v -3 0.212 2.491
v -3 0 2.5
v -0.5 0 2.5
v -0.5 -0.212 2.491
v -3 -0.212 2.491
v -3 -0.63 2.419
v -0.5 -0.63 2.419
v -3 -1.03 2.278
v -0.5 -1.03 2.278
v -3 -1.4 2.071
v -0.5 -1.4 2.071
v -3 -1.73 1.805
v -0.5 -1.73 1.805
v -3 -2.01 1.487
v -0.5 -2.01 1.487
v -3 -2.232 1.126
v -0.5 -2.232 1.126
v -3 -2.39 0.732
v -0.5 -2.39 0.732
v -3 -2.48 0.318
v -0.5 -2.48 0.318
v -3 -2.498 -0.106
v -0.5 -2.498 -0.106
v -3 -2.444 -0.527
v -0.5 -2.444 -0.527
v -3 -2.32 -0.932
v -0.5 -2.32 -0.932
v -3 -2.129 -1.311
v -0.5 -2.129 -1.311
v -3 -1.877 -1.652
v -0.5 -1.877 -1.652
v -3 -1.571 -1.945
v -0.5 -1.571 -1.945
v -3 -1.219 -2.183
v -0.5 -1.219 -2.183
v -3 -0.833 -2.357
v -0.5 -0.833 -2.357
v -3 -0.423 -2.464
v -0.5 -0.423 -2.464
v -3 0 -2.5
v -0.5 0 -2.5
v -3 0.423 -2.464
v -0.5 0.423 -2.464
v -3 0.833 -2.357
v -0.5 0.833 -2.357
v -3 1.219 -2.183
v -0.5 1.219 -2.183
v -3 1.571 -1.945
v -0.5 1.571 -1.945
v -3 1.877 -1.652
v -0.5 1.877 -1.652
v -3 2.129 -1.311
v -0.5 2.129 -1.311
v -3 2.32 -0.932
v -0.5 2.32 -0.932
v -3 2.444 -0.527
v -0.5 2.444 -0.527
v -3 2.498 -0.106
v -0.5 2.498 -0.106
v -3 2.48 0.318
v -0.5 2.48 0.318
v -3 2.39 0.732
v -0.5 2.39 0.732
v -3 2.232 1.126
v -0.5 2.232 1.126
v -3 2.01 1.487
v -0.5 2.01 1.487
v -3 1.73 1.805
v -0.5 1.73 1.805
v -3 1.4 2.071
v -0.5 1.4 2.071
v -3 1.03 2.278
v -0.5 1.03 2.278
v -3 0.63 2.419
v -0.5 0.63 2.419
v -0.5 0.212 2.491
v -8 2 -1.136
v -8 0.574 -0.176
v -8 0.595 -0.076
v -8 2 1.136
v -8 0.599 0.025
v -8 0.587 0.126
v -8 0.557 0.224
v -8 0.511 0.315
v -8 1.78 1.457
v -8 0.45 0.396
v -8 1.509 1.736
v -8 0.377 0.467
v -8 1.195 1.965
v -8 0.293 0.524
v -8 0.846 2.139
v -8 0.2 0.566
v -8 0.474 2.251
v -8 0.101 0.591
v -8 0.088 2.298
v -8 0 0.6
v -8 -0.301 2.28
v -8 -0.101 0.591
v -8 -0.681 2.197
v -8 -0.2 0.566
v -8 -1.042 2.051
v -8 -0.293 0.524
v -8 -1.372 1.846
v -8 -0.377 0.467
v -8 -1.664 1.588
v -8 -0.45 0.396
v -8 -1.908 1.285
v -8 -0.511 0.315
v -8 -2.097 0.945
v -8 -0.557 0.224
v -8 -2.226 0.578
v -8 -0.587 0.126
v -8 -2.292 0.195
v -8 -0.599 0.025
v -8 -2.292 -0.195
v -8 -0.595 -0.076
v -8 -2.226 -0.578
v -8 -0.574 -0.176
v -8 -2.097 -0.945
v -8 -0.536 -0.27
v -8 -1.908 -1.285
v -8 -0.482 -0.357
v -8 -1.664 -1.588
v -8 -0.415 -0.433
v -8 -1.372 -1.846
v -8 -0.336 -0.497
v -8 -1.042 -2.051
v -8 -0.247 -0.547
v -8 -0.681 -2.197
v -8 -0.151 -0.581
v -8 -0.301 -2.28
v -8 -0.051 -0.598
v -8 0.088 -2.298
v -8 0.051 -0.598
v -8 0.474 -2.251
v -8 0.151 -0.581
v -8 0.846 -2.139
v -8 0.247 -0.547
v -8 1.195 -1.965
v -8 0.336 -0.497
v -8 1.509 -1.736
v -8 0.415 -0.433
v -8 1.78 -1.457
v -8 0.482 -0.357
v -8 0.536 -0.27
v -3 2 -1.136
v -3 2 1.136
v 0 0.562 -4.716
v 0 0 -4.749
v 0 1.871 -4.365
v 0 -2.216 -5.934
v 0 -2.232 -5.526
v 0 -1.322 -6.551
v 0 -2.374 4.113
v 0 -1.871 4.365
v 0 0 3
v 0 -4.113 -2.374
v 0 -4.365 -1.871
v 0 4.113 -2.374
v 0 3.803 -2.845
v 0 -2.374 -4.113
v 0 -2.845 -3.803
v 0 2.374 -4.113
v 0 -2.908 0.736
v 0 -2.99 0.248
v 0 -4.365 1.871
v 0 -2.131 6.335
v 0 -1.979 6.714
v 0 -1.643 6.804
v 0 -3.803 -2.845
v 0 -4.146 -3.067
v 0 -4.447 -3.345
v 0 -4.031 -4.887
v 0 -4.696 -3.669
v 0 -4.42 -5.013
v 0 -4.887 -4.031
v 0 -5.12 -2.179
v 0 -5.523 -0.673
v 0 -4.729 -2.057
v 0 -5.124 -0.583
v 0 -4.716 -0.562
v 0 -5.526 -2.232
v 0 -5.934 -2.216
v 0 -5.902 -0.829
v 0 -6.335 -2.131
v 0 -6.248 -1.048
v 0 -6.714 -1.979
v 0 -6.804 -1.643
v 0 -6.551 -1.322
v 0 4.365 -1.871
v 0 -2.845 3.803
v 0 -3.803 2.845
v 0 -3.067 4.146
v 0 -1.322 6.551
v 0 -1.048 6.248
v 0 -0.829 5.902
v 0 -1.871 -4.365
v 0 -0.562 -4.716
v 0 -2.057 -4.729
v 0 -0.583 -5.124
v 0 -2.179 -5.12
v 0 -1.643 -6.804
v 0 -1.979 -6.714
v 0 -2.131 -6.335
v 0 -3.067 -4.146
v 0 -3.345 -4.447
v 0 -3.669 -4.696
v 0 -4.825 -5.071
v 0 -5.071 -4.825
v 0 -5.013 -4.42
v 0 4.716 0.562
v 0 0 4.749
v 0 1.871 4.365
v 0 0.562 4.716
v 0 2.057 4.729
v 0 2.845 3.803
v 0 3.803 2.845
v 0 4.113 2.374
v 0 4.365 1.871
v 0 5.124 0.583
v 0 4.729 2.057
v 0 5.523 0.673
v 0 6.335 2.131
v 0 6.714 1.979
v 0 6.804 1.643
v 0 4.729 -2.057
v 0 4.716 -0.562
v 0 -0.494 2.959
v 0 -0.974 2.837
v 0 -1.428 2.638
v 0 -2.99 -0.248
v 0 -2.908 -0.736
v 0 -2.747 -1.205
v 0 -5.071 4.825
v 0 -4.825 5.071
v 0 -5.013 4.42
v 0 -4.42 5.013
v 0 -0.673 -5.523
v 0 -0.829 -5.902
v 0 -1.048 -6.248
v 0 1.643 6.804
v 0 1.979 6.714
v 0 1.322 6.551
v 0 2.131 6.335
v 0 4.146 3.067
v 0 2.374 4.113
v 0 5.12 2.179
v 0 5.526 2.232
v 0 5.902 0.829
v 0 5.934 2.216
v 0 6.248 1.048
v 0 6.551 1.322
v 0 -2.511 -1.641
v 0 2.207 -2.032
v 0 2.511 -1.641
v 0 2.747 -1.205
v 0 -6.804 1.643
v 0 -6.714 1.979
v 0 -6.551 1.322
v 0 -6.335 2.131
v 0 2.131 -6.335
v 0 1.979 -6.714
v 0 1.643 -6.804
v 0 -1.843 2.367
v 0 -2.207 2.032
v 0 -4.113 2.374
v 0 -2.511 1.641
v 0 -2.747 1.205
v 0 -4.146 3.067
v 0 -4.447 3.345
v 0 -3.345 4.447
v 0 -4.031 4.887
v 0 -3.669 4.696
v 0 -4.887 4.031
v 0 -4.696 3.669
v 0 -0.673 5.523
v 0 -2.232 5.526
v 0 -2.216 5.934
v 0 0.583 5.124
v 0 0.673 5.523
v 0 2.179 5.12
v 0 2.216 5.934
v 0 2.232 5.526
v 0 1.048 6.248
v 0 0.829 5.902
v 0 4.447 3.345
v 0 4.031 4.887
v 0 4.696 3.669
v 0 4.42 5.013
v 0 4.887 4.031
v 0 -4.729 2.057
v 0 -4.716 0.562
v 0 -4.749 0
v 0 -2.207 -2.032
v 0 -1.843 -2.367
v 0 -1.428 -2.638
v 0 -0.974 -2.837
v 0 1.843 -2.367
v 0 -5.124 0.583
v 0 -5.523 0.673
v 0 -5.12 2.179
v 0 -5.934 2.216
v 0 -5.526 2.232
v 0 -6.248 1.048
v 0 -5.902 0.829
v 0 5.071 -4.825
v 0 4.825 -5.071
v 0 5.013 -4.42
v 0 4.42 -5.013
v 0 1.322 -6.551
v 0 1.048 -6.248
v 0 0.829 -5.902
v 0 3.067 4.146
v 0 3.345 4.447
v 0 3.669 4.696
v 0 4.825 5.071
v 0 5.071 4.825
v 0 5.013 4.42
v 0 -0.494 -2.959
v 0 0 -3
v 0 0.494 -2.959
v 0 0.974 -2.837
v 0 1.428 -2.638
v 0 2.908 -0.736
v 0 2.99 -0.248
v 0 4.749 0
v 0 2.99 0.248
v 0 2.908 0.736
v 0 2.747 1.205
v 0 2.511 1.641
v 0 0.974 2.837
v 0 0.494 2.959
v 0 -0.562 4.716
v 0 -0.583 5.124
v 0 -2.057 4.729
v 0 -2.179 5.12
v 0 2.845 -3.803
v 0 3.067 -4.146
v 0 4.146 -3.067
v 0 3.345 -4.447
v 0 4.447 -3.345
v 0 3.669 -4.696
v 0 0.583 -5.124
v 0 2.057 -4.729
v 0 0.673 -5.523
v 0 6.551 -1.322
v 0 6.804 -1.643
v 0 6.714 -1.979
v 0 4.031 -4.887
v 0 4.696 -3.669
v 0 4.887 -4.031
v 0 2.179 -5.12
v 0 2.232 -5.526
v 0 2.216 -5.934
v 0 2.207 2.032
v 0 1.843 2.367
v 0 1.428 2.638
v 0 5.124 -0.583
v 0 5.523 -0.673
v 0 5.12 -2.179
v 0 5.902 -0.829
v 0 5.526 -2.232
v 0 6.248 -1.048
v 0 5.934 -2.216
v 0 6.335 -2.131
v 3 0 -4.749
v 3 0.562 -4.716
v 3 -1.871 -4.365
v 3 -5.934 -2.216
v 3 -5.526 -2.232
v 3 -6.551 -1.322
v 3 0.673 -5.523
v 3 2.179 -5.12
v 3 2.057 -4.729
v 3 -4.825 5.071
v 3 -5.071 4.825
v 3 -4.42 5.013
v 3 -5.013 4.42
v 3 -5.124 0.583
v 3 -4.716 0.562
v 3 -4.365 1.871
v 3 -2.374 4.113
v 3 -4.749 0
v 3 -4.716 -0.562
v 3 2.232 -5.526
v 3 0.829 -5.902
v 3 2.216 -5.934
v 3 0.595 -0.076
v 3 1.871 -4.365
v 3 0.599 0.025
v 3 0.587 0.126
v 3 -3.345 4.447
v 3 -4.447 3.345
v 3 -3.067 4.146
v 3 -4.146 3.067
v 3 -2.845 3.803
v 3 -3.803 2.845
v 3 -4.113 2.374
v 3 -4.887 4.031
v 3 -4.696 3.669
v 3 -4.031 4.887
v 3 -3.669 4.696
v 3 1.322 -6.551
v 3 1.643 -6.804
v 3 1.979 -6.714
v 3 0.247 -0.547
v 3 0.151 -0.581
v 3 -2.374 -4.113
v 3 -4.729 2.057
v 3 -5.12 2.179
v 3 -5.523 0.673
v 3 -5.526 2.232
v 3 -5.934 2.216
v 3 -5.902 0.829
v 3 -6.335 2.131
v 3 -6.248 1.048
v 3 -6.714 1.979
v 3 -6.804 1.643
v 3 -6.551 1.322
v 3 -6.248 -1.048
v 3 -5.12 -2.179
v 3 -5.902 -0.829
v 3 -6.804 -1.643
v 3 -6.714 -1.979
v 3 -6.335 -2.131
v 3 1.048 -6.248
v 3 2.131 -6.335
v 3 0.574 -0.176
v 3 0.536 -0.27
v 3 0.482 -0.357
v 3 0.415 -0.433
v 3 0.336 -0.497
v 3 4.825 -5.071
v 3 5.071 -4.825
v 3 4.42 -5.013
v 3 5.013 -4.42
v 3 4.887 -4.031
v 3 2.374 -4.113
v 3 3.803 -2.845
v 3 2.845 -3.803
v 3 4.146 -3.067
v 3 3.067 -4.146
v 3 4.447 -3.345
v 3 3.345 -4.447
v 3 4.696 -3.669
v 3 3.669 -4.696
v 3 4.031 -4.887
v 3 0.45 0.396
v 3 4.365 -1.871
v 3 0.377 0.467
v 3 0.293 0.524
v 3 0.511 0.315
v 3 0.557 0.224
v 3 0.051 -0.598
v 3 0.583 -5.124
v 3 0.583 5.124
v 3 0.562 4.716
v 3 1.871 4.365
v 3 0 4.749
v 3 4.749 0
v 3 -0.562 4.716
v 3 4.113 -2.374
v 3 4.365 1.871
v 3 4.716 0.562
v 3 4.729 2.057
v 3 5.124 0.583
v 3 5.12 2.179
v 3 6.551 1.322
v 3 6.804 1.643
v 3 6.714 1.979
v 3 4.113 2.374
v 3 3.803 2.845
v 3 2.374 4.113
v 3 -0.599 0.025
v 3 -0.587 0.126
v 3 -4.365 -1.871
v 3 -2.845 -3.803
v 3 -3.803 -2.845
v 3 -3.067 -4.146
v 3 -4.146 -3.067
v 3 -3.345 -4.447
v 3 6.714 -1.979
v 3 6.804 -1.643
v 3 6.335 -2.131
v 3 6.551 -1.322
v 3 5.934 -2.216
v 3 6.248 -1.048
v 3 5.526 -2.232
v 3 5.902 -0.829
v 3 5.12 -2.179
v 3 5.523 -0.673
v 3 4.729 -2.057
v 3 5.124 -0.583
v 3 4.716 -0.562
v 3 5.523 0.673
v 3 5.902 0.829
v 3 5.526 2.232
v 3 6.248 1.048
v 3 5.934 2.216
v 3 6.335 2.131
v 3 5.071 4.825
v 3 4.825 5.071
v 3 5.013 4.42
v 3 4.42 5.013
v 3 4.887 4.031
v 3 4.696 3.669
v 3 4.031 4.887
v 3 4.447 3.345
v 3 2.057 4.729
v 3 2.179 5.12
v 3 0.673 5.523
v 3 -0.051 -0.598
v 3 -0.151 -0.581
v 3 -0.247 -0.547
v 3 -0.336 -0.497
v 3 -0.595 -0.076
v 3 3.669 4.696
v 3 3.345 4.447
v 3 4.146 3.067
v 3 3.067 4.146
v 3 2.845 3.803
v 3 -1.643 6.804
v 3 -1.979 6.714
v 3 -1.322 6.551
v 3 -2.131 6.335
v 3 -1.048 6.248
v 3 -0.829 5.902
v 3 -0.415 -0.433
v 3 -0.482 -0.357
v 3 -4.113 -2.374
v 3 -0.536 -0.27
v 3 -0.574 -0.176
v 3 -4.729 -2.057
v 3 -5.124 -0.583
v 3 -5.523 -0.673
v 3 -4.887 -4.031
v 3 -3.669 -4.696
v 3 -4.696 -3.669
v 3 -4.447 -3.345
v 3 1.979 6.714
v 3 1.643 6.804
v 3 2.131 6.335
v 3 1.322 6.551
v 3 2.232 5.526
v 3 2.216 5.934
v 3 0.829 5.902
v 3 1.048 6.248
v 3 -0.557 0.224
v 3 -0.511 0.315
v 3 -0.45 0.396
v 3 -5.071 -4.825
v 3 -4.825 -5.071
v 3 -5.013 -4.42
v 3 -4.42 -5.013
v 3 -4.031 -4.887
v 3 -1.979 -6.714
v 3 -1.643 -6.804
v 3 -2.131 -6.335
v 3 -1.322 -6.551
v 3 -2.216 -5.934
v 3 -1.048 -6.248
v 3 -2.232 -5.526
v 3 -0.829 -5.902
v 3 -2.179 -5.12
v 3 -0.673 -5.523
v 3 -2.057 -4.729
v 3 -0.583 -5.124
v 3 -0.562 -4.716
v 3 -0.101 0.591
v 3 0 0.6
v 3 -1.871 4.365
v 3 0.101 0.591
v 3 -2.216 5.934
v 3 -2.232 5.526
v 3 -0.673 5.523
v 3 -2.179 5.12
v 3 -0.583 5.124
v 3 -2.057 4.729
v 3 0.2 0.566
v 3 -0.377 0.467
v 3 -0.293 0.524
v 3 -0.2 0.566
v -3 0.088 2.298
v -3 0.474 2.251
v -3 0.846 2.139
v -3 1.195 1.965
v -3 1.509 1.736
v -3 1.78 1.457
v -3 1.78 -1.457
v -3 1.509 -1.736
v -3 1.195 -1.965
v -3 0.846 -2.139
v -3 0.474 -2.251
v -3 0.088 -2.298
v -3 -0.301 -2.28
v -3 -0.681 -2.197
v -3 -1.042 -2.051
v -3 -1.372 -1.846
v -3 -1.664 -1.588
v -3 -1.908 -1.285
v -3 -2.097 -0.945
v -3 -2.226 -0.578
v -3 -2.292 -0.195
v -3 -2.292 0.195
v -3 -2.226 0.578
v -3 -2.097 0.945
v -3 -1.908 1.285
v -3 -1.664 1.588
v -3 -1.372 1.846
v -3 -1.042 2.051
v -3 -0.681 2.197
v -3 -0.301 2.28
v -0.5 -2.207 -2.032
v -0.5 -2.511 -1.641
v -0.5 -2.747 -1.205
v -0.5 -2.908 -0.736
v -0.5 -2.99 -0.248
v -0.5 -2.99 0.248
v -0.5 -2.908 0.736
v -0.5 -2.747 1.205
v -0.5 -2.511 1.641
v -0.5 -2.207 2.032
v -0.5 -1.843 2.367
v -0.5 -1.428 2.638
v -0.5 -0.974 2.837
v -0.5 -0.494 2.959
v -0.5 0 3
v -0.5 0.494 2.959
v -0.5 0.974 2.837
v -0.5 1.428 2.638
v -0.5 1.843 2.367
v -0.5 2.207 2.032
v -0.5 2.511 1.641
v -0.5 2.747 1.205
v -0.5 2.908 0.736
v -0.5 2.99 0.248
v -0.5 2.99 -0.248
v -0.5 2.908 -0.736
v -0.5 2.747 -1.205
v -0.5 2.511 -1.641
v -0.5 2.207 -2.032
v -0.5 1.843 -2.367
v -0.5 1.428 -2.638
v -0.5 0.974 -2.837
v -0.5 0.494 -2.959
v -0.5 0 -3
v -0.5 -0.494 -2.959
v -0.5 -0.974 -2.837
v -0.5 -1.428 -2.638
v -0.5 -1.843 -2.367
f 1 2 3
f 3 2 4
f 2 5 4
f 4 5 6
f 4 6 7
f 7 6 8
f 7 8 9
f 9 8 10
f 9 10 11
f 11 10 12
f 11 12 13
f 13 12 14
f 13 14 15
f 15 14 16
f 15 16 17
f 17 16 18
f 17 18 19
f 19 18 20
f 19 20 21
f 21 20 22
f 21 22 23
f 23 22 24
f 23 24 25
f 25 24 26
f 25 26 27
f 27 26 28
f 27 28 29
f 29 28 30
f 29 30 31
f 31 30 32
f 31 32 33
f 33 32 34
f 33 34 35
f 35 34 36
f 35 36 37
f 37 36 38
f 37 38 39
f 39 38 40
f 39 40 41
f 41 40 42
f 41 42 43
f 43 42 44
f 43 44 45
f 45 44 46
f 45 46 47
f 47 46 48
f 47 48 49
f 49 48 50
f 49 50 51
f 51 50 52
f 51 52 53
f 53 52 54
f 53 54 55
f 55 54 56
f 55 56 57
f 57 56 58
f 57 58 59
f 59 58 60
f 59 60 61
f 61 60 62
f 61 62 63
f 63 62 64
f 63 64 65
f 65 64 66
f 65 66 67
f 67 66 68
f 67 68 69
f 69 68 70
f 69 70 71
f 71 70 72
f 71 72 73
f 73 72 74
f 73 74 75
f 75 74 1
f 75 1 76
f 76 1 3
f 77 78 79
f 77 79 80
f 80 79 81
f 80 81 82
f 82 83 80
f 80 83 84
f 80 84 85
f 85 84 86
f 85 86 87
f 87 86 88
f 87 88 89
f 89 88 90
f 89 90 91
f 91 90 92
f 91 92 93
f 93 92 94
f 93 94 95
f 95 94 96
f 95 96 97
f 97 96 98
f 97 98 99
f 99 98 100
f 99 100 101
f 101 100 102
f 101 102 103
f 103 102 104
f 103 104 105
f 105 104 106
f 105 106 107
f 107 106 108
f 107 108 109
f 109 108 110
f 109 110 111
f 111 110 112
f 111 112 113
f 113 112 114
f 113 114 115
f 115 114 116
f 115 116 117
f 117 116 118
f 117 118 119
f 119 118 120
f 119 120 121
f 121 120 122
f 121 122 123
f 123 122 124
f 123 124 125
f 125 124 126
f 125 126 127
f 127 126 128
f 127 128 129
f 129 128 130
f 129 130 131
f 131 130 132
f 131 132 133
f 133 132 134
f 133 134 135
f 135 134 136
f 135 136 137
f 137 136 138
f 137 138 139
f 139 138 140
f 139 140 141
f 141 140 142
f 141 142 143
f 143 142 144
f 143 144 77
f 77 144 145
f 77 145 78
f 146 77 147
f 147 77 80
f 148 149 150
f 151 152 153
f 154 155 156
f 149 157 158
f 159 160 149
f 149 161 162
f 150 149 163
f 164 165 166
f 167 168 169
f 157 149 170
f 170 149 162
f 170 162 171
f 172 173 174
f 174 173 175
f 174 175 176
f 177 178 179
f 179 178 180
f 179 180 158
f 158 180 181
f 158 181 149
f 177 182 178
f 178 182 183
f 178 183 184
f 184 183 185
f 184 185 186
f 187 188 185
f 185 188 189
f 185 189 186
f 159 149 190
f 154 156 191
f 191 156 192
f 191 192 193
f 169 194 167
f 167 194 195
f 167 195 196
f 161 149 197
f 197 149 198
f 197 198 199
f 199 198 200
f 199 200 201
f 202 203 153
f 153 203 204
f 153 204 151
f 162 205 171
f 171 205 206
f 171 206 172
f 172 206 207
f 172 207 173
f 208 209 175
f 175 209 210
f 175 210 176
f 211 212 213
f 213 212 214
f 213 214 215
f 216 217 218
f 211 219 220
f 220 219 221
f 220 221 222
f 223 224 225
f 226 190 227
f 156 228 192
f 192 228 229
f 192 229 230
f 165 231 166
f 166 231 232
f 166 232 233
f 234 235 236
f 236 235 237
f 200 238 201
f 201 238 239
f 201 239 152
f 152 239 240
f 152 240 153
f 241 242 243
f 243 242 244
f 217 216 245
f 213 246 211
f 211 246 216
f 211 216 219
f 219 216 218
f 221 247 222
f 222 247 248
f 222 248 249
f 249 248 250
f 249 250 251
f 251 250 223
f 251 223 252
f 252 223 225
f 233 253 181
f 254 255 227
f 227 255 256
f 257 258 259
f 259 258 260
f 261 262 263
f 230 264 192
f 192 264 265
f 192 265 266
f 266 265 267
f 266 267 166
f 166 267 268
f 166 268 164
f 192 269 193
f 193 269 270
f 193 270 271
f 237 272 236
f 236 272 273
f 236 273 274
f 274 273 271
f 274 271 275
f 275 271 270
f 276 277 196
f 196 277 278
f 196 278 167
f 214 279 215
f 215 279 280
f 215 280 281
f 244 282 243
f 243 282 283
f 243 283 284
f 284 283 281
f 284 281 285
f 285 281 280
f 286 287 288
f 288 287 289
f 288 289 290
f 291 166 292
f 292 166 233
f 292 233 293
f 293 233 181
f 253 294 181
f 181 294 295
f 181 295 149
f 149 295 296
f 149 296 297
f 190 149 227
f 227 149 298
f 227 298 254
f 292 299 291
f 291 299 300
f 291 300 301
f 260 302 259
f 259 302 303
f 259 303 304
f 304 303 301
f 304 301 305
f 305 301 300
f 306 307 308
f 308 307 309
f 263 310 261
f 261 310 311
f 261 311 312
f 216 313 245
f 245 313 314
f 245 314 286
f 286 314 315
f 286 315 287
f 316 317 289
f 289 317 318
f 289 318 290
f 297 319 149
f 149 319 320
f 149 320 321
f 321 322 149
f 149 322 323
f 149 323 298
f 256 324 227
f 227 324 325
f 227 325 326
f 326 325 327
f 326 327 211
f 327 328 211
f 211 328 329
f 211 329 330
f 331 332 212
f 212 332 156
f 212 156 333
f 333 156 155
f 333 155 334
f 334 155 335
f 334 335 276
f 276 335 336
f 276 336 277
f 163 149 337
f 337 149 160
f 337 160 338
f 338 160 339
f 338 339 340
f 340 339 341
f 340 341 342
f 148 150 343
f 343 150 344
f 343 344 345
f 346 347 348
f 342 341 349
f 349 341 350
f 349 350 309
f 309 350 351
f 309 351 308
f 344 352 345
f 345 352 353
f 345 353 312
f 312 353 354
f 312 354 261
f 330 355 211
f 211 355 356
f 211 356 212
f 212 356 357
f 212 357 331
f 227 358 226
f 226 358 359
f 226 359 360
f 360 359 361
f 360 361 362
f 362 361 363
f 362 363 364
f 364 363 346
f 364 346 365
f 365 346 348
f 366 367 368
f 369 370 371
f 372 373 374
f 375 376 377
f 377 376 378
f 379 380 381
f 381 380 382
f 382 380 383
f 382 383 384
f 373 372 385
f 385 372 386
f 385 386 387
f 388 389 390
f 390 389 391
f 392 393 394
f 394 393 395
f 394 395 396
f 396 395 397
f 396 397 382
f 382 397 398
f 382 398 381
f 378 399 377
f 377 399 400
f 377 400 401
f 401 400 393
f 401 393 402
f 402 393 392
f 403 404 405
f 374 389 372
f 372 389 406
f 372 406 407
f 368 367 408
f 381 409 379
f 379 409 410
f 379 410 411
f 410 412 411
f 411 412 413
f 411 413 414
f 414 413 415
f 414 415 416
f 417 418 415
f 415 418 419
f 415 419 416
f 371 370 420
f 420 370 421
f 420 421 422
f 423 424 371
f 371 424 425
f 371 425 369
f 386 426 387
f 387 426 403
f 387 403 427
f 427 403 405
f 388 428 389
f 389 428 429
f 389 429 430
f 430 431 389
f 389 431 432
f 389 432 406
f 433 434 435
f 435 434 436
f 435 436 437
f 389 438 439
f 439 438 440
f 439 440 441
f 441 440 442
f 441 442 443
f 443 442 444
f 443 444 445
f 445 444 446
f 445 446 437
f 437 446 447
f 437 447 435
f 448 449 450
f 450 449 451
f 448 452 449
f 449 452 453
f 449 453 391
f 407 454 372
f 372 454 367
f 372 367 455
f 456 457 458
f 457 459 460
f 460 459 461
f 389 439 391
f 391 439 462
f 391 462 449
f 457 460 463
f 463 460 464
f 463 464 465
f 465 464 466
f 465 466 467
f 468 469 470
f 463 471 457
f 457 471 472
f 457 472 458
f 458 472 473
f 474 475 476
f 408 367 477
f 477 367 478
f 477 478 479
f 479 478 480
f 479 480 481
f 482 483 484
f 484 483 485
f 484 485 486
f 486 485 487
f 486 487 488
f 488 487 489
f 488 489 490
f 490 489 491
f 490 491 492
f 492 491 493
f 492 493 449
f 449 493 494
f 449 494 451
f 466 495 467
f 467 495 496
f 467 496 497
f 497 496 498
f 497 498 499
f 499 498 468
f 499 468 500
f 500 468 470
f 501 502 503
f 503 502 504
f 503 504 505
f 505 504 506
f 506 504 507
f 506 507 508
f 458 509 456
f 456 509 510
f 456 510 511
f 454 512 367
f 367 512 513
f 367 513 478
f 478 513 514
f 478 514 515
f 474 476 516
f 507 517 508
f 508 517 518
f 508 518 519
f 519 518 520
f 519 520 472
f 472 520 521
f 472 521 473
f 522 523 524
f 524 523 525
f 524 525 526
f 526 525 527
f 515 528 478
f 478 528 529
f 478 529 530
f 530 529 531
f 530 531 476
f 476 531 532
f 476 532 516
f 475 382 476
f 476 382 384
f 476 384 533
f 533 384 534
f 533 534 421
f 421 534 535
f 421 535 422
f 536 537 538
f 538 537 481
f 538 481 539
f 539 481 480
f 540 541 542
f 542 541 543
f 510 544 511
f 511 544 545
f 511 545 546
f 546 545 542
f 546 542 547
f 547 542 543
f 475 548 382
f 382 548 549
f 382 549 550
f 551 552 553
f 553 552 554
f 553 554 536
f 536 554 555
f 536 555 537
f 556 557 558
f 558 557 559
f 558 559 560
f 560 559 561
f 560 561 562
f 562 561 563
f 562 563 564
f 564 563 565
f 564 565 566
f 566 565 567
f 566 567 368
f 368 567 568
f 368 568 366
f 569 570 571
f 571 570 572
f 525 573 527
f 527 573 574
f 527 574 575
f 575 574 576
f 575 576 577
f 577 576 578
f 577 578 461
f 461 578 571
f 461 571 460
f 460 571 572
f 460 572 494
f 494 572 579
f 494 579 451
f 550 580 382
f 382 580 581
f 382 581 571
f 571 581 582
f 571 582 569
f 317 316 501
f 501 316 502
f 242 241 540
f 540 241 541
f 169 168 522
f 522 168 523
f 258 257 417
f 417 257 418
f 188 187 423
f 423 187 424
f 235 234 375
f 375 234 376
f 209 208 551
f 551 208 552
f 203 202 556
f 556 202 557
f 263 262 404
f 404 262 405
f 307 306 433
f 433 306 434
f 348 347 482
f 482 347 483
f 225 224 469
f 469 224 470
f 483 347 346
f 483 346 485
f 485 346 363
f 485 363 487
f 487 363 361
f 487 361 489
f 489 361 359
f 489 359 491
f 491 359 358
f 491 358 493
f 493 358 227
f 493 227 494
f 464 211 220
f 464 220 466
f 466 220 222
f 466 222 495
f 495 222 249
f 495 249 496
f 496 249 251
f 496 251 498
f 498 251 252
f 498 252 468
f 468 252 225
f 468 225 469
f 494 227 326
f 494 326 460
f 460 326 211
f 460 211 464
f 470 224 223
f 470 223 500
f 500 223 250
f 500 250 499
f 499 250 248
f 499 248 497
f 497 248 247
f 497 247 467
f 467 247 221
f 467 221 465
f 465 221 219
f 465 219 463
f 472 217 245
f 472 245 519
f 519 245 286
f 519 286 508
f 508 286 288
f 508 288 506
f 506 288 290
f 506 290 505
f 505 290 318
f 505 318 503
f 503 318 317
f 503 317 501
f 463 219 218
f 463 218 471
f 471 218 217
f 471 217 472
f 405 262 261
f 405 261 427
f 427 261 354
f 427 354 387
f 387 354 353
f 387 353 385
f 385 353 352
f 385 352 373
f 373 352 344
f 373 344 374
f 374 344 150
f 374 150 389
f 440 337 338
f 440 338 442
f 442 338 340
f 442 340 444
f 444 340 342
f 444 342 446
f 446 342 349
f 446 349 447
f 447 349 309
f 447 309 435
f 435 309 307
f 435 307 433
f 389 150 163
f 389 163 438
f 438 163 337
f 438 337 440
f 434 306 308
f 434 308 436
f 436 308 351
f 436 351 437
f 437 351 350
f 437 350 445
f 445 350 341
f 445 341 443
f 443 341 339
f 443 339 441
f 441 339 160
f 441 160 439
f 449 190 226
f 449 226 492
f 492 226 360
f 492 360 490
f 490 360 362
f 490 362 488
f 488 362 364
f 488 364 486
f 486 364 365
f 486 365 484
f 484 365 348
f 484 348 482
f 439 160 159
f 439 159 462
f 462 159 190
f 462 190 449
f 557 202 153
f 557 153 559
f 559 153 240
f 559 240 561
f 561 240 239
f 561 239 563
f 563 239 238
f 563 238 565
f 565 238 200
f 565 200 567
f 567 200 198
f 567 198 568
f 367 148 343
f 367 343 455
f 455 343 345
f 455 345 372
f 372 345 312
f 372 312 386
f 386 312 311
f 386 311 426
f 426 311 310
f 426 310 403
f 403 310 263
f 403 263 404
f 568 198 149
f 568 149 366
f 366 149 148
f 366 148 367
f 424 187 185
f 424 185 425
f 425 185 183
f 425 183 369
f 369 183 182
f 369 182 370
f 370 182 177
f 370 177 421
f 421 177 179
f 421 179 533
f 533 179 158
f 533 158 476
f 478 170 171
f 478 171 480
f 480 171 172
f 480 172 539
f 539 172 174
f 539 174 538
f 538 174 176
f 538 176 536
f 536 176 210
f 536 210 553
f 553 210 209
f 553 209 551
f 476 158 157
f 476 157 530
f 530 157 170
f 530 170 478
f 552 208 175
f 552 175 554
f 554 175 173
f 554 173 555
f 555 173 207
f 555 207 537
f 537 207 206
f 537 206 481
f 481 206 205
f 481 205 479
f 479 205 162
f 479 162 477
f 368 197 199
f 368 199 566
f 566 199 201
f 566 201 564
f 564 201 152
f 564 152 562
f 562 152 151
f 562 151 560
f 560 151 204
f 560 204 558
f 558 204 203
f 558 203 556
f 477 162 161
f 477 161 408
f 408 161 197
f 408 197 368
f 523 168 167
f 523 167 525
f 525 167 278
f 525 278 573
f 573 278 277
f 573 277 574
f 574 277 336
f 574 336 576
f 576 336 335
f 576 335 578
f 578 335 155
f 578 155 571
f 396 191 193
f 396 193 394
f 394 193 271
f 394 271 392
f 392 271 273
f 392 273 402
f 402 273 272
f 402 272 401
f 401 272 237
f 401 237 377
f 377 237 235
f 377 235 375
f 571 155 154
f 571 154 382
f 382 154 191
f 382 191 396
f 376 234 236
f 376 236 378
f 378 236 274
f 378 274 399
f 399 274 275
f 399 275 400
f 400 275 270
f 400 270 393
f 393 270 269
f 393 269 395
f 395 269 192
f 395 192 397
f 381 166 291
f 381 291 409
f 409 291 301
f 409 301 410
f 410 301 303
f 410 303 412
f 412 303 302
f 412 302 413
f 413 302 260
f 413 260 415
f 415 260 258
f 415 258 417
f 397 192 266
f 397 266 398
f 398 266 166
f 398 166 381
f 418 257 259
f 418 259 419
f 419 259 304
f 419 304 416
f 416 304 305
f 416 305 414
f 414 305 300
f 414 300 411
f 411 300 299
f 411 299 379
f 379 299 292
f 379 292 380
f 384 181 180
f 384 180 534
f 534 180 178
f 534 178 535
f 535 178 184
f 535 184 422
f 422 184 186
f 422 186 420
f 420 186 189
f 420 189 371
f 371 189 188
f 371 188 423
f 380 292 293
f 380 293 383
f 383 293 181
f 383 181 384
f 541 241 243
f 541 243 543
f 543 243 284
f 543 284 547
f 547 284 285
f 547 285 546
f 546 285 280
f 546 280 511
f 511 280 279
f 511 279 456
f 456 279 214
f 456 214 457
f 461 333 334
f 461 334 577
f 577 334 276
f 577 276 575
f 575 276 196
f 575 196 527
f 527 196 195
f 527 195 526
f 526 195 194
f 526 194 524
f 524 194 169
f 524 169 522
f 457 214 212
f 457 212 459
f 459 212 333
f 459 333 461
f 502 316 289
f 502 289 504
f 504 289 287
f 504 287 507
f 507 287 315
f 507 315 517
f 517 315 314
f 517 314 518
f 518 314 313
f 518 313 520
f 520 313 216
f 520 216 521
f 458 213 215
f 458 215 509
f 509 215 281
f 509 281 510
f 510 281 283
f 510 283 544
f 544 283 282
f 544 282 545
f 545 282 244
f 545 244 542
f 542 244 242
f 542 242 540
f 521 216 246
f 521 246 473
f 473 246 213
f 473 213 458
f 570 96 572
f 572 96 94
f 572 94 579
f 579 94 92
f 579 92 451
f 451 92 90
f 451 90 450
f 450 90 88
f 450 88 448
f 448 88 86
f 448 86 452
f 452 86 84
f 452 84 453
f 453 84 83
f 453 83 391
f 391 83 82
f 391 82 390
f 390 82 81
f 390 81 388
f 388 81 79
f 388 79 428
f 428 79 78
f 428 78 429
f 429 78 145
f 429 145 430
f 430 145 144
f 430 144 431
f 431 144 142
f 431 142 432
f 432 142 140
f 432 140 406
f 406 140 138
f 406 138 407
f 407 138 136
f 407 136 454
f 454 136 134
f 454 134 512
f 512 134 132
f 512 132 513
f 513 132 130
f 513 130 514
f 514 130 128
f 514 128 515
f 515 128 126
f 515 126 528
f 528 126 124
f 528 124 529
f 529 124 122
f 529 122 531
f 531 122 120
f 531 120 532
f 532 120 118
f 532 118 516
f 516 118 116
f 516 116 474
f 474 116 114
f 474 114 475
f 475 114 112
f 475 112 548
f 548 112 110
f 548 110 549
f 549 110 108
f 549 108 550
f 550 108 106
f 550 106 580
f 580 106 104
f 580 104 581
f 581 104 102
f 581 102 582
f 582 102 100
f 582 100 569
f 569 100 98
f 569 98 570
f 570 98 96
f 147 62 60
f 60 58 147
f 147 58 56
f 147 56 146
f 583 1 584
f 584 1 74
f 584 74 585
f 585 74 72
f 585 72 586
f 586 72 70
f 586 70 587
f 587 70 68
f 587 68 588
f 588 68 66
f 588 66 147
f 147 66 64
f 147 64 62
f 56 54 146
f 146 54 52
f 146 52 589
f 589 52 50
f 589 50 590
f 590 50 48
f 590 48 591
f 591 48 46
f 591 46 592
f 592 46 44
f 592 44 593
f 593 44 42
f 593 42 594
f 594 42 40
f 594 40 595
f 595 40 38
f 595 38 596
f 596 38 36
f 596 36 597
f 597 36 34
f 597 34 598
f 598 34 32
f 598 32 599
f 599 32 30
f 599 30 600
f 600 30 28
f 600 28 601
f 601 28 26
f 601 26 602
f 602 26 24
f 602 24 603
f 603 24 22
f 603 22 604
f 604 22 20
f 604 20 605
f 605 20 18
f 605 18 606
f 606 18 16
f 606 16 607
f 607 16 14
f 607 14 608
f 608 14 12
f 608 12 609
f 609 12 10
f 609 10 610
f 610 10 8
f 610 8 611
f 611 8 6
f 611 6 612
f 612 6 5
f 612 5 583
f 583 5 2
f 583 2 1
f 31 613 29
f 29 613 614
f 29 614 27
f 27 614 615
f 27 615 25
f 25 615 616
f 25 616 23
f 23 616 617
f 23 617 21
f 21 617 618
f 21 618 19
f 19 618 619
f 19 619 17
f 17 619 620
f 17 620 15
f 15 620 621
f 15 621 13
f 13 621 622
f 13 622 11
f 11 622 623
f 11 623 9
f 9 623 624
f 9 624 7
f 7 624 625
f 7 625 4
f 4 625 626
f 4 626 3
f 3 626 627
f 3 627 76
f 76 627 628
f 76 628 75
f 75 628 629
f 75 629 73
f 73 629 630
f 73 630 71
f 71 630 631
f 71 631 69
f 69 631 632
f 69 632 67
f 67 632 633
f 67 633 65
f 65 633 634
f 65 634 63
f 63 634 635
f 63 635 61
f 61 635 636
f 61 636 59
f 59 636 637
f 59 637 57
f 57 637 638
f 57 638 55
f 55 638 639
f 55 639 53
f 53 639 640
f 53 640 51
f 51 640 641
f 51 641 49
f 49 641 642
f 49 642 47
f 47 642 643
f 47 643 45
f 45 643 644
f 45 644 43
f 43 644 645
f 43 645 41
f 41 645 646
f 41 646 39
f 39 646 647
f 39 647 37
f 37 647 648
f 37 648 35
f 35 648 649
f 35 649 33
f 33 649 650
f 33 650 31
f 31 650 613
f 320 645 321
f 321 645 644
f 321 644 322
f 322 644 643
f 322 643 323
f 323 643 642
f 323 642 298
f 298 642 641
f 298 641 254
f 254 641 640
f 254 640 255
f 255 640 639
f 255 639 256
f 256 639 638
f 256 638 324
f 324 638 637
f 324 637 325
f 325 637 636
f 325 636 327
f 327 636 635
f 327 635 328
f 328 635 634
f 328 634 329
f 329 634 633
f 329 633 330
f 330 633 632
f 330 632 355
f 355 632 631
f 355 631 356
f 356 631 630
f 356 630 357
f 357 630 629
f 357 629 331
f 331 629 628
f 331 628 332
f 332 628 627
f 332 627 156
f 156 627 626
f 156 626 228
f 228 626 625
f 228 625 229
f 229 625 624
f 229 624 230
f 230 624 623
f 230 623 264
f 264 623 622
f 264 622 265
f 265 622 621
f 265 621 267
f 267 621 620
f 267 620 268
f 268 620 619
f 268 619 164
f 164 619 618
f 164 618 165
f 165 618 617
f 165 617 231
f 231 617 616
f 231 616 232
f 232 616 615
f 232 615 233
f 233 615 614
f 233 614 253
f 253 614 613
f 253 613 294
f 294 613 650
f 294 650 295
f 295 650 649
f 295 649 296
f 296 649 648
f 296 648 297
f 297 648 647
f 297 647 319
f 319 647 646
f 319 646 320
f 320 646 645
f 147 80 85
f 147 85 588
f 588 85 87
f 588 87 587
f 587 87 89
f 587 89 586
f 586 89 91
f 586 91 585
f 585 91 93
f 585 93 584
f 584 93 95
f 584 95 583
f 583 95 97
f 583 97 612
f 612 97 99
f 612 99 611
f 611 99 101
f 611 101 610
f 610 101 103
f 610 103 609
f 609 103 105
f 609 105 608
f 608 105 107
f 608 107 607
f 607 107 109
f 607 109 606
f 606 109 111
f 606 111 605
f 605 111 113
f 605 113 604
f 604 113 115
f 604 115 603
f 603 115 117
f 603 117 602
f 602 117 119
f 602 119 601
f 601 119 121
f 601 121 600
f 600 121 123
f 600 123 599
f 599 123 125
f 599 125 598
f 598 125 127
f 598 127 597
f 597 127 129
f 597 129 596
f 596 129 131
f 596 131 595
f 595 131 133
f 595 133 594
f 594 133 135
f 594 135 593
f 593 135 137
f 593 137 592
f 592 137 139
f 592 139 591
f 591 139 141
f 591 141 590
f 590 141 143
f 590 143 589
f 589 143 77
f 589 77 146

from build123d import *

# Parameters (mm, degrees)
BASPROSKE_W         = 3
BASPROSKE_H         = 7
TOOTHCUT_DEPTH      = 11.344080433
TEETHCUTS_COUNT     = 12
HUBNEAONESKE_R      = 2.5
HUBNEARONE_DEPTH    = 8
BORSKE_R            = 0.6
BORE_DEPTH          = 15.0000508
CUT_EXTRUDE_4_DEPTH = 5
SKETCH_2_R          = 3
SKETCH_2_R_2        = 2.5
EXTRUDE_1_DEPTH     = 0.5
SKETCH_3_OUTSIDE_W  = 20.042
SKETCH_3_OUTSIDE_H  = 20.042
SKETCH_3_OUTSIDE_R  = 2.3
CUT_EXTRUDE_5_DEPTH = 5


with BuildPart() as part:
    # BasProSke → Base-Revolve (revolve)
    with BuildSketch(Plane(origin=(0, 0, 0), x_dir=(1, 0, 0), z_dir=(0, 1, 0)), mode=Mode.PRIVATE) as base_revolve_sk:
        with Locations((1.5, 3.5)):
            Rectangle(BASPROSKE_W, BASPROSKE_H)
    revolve(base_revolve_sk.sketch.rotate(Axis((-10, 0, 0), (1, 0, 0)), 180), axis=Axis((-10, 0, 0), (1, 0, 0)))

    # TooCutSke → ToothCut (cut, through all)
    with BuildSketch(Plane(origin=(0, 0, 0), x_dir=(0, 0, -1), z_dir=(1, 0, 0))):
        with BuildLine():
            ThreePointArc((0.562207301, 4.715604304), (0, 4.749), (-0.562207301, 4.715604304))
            ThreePointArc((-0.562207301, 4.715604304), (-0.837528627, 5.917009812), (-1.672850686, 6.823328788))
            ThreePointArc((-1.672850686, 6.823328788), (0, 7.0254), (1.672850686, 6.823328788))
            ThreePointArc((1.672850686, 6.823328788), (0.837528627, 5.917009812), (0.562207301, 4.715604304))
        make_face()
    toothcut = extrude(amount=TOOTHCUT_DEPTH, mode=Mode.SUBTRACT)

    # TeethCuts: ToothCut ×12 about axis
    teethcuts_axis = Axis((0, 0, 0), (1, 0, 0))
    for i in range(1, TEETHCUTS_COUNT):
        add(toothcut.rotate(teethcuts_axis, i * 360 / TEETHCUTS_COUNT), mode=Mode.SUBTRACT)

    # HubNeaOneSke → HubNearOne (add)
    with BuildSketch(Plane.ZY):
        with Locations(Location((0, 0, 0), (0, 0, 180))):
            Circle(HUBNEAONESKE_R)
    extrude(amount=HUBNEARONE_DEPTH)

    # BorSke → Bore (cut, symmetric)
    with BuildSketch(Plane(origin=(0, 0, 0), x_dir=(0, 0, -1), z_dir=(1, 0, 0))):
        with Locations(Location((0, 0, 0), (0, 0, 180))):
            Circle(BORSKE_R)
    extrude(amount=BORE_DEPTH, both=True, mode=Mode.SUBTRACT)

    # 草图1 → 切除-拉伸4 (cut)
    with BuildSketch(Plane.ZY.offset(8)):
        with BuildLine():
            Line((-1.5, 2), (1.5, 2))
            ThreePointArc((1.5, 2), (0, 2.5), (-1.5, 2))
        make_face()
    extrude(amount=-CUT_EXTRUDE_4_DEPTH, mode=Mode.SUBTRACT)

    # 草图2 → 凸台-拉伸1 (add)
    with BuildSketch(Plane.ZY):
        with Locations(Location((0, 0, 0), (0, 0, 180))):
            Circle(SKETCH_2_R)
        with Locations(Location((0, 0, 0), (0, 0, 126.869897646))):
            Circle(SKETCH_2_R_2, mode=Mode.SUBTRACT)
    extrude(amount=EXTRUDE_1_DEPTH)

    # 草图3 outside → 切除-拉伸5 (cut)
    with BuildSketch(Plane.ZY.offset(8)):
        Rectangle(SKETCH_3_OUTSIDE_W, SKETCH_3_OUTSIDE_H)
        Circle(SKETCH_3_OUTSIDE_R, mode=Mode.SUBTRACT)
    extrude(amount=-CUT_EXTRUDE_5_DEPTH, mode=Mode.SUBTRACT)


solid = part.part
